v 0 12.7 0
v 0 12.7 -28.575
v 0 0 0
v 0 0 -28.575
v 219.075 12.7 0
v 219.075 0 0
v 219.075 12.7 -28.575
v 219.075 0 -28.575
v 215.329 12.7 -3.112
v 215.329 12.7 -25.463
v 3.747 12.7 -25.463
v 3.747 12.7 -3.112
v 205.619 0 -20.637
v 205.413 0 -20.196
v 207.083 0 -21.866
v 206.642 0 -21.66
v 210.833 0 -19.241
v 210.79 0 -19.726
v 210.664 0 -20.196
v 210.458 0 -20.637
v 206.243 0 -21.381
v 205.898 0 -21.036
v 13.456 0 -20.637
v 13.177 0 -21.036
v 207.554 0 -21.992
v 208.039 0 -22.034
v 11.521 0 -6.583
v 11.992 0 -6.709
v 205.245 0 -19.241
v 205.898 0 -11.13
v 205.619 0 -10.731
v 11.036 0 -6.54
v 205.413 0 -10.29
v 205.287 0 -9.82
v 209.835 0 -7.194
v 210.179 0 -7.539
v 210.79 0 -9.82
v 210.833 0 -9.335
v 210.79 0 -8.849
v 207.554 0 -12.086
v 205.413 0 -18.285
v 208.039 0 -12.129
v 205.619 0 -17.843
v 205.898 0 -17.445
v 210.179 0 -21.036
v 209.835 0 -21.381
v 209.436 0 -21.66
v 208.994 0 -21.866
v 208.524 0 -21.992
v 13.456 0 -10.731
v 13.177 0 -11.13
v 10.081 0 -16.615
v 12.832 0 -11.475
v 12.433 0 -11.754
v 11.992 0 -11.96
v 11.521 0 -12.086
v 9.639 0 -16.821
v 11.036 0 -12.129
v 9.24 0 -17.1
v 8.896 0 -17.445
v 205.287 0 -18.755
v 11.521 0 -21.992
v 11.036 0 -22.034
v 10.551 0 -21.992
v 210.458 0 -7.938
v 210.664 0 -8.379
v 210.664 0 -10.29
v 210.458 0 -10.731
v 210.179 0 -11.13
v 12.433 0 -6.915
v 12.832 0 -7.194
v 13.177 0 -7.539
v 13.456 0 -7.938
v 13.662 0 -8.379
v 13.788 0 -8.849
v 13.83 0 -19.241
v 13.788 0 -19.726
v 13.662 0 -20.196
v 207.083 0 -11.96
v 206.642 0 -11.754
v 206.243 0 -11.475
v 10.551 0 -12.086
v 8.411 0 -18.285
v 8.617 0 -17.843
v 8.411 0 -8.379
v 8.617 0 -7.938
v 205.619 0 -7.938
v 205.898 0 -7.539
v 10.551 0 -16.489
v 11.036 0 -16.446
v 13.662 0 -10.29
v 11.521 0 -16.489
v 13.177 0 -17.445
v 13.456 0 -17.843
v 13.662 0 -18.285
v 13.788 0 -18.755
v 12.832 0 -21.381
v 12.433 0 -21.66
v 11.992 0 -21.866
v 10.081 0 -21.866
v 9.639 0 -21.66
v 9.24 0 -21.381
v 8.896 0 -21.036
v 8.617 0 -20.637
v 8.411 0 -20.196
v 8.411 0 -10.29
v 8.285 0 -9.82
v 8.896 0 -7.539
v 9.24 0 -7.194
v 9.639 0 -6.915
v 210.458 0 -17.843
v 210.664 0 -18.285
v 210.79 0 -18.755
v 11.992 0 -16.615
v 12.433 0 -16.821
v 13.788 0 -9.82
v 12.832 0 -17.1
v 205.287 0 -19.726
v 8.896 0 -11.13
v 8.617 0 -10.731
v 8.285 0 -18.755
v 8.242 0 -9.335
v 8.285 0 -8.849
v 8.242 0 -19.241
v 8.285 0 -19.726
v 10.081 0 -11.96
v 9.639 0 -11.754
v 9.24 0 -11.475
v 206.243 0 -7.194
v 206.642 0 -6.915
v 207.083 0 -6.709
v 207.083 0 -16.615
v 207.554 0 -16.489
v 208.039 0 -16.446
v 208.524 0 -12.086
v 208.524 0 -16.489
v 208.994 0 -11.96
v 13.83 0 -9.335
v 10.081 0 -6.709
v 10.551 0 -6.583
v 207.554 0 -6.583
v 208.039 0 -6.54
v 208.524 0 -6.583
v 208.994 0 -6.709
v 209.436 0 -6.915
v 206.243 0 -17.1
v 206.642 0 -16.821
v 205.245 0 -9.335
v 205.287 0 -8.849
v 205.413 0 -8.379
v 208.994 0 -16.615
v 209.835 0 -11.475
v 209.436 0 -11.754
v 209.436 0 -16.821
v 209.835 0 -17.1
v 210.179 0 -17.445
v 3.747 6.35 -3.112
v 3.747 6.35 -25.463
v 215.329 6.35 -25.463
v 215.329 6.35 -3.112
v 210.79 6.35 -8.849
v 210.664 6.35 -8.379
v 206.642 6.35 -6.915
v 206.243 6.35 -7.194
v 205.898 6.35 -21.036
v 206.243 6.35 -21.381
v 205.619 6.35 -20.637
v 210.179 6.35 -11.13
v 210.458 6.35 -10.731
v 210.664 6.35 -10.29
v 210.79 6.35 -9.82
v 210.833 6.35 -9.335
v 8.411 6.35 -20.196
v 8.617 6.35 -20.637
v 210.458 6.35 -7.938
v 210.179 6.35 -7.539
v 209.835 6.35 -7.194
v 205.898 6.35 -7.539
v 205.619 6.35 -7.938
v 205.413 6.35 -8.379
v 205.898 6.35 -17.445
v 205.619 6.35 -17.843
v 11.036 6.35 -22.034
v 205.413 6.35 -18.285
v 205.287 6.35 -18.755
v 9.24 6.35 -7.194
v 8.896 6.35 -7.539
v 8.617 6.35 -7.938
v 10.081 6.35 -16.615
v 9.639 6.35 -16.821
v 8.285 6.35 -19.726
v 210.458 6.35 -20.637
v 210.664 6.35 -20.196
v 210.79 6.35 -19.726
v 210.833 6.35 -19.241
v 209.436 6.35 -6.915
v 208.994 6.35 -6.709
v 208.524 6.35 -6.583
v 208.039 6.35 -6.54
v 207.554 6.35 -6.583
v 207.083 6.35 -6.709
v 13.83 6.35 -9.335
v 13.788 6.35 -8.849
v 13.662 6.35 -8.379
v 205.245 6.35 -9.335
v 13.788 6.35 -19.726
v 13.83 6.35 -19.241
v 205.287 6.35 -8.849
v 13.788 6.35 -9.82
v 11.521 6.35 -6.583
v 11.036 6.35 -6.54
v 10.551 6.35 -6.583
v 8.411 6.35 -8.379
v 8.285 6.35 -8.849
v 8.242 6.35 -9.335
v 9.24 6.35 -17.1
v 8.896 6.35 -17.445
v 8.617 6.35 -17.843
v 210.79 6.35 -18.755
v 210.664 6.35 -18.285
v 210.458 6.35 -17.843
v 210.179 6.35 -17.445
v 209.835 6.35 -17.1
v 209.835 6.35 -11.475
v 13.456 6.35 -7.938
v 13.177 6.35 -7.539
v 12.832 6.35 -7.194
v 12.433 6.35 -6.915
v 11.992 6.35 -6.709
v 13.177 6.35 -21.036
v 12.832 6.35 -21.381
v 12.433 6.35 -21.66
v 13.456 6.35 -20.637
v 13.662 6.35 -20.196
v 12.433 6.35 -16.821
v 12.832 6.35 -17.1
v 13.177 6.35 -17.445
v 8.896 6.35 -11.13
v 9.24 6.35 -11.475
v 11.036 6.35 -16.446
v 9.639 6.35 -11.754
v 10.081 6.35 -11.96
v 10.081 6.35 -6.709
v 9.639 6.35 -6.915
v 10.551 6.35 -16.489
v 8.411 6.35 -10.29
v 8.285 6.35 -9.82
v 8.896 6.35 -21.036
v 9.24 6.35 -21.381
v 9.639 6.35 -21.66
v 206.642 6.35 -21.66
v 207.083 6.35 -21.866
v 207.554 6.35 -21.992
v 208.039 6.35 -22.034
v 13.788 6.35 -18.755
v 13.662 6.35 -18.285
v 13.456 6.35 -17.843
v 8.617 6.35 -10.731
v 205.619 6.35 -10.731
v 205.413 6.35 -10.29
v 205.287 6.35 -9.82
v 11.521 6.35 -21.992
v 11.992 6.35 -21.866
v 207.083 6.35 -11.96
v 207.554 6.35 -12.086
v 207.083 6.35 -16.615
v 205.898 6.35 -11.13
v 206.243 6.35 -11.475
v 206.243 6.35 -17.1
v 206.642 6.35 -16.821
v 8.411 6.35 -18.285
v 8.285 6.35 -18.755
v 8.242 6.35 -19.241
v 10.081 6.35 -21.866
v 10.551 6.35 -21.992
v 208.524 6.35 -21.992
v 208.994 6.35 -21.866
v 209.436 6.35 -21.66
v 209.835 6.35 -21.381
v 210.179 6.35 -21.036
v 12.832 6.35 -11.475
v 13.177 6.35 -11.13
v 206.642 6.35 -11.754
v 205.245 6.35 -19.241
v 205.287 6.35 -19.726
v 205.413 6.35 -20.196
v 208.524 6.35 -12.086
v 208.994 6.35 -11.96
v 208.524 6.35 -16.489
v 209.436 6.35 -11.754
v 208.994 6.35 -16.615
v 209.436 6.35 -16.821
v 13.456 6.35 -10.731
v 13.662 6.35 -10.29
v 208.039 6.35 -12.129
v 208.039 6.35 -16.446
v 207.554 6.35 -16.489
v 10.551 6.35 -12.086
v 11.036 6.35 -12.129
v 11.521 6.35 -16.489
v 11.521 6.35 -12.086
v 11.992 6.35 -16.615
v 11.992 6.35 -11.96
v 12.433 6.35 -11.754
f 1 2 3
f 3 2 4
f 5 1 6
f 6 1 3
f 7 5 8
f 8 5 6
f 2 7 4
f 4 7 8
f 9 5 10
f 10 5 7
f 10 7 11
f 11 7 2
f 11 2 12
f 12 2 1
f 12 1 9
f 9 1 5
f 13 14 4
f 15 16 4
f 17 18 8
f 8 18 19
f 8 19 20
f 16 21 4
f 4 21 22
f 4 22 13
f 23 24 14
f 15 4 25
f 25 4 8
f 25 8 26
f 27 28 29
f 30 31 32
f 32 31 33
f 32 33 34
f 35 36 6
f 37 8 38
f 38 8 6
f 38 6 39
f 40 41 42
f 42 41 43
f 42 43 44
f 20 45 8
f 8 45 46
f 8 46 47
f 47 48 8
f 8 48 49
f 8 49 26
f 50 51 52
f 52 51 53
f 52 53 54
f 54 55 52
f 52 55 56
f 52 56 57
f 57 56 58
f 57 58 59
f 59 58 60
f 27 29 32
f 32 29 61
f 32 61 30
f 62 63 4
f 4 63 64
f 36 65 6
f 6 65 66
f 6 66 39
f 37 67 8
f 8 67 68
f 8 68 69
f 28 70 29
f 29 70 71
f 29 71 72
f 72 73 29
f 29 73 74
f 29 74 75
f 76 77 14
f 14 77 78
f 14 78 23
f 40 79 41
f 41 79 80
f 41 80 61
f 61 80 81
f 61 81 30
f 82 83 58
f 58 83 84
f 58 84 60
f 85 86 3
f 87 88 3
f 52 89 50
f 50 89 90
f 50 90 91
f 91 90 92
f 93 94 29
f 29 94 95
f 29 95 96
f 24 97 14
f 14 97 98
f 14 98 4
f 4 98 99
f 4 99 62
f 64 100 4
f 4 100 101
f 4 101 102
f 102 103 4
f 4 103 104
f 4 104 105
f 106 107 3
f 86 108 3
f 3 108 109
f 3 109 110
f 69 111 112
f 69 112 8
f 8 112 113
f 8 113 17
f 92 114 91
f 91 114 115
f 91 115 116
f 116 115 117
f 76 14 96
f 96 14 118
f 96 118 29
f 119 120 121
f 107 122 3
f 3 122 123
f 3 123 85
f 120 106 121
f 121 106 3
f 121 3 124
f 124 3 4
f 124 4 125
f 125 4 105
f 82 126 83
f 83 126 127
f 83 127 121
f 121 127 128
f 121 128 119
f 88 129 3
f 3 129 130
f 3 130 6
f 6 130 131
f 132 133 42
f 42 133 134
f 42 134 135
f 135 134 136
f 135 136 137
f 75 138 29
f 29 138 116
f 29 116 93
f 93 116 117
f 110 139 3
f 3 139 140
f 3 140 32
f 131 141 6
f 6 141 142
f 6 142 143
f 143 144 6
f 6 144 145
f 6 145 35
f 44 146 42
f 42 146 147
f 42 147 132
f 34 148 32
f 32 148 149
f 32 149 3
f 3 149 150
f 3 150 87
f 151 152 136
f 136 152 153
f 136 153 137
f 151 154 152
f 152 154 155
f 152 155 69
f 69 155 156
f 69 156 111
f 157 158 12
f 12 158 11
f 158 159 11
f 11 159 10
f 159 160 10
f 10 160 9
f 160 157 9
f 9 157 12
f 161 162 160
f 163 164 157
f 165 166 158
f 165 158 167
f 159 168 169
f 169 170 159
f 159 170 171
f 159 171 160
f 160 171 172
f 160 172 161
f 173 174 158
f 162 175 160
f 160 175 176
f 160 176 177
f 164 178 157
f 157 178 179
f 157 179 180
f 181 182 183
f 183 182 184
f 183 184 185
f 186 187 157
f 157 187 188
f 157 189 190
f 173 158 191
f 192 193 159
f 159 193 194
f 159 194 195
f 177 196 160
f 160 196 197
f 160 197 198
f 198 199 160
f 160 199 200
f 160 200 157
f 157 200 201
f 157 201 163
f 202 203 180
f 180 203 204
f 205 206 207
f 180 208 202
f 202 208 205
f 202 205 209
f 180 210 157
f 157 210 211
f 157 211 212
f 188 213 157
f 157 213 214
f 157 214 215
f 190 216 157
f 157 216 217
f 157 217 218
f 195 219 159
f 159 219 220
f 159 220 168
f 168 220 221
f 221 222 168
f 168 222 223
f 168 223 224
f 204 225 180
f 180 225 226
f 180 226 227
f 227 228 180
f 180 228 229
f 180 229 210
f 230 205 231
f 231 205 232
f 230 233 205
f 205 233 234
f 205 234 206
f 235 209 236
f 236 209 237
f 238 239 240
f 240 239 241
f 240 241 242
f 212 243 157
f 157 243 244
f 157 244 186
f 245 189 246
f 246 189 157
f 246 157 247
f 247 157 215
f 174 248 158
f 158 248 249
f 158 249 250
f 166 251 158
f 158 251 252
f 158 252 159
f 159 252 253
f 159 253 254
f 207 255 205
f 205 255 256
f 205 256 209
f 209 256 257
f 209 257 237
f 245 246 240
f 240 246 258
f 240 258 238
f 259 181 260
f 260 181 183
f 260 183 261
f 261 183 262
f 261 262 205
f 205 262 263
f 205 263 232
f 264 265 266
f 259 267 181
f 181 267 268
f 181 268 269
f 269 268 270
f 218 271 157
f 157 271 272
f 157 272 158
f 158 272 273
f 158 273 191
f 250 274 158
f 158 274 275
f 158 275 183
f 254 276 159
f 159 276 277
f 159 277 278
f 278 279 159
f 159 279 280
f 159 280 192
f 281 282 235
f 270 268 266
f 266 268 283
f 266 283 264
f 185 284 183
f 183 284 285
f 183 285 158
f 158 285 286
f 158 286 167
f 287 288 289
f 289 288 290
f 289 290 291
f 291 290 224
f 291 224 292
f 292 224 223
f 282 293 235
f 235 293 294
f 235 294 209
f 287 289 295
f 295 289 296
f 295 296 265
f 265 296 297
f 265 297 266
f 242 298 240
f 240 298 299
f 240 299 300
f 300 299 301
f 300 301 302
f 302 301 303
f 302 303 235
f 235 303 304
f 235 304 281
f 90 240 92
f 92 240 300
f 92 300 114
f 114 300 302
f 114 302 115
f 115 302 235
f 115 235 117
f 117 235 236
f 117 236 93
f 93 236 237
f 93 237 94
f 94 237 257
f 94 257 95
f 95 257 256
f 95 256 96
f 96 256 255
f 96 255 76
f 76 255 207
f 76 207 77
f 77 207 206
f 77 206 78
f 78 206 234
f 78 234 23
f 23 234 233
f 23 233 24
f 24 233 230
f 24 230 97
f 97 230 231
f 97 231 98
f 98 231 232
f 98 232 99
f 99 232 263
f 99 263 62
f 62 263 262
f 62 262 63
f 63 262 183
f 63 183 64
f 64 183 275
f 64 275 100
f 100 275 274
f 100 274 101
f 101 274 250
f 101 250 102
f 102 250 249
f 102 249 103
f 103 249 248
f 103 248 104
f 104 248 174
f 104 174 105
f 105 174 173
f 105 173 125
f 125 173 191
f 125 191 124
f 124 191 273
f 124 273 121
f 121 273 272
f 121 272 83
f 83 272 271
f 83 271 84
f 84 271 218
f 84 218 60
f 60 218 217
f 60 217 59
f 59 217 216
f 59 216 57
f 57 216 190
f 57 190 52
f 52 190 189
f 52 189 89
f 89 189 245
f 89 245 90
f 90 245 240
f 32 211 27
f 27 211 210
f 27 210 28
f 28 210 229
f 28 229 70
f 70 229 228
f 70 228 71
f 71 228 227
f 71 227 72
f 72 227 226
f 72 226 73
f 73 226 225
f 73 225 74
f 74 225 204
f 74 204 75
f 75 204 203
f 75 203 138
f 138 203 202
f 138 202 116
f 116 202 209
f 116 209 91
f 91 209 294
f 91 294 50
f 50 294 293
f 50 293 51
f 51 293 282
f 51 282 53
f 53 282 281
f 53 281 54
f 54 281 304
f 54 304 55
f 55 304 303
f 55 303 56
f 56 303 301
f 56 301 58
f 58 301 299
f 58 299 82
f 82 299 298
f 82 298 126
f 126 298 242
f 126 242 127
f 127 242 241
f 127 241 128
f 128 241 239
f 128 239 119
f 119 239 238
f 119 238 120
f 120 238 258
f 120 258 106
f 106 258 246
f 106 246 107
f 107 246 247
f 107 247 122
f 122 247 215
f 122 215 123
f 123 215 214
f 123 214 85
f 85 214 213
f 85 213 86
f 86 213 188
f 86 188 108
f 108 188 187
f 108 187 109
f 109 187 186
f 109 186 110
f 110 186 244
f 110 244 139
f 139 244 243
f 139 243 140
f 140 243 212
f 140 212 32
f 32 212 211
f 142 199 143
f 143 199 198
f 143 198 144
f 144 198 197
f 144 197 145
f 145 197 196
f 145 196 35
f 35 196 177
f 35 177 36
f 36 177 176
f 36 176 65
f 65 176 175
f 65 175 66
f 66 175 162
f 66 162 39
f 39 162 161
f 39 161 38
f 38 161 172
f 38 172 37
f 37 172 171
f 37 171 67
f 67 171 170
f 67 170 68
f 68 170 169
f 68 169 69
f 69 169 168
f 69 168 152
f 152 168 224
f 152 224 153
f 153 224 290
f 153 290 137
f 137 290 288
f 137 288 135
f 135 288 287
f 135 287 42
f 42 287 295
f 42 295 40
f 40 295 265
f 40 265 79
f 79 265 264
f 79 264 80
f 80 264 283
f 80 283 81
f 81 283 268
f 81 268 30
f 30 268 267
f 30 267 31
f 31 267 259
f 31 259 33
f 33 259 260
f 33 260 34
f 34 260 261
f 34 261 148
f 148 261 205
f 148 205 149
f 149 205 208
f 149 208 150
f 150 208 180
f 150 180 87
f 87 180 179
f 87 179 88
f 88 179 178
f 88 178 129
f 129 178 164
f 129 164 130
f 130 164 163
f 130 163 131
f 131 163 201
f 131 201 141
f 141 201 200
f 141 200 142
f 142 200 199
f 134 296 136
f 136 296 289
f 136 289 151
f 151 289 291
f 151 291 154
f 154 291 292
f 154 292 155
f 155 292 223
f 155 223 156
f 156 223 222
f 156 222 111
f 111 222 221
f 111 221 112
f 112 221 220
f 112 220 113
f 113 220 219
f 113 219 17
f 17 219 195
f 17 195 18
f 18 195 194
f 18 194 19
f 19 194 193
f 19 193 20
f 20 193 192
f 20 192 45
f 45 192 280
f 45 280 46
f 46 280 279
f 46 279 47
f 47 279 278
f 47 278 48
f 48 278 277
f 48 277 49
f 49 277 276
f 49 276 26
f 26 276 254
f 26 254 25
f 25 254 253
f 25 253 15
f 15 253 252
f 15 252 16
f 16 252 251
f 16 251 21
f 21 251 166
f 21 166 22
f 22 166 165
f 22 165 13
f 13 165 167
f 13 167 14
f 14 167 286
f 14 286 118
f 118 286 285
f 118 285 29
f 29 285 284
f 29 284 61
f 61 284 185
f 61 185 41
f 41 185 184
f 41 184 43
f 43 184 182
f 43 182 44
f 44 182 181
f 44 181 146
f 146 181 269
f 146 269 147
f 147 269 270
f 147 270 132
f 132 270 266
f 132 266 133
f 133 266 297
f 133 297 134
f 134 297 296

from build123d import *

# Parameters (mm, degrees)
SKETCH1_W           = 219.075
SKETCH1_H           = 28.575
BOSS_EXTRUDE1_DEPTH = 12.7
SKETCH2_W           = 211.582
SKETCH2_H           = 22.352
CUT_EXTRUDE1_DEPTH  = 6.35
SKETCH4_R           = 2.794
CUT_EXTRUDE2_DEPTH  = 222.021964406


with BuildPart() as part:
    # Sketch1 → Boss-Extrude1 (new body)
    with BuildSketch(Plane(origin=(0, 0, 0), x_dir=(1, 0, 0), z_dir=(0, 1, 0))):
        with Locations((109.5375, 14.2875)):
            Rectangle(SKETCH1_W, SKETCH1_H)
    extrude(amount=BOSS_EXTRUDE1_DEPTH)

    # Sketch2 → Cut-Extrude1 (cut)
    with BuildSketch(Plane(origin=(0, 12.7, 0), x_dir=(1, 0, 0), z_dir=(0, 1, 0))):
        with Locations((109.5375, 14.2875)):
            Rectangle(SKETCH2_W, SKETCH2_H)
    extrude(amount=-CUT_EXTRUDE1_DEPTH, mode=Mode.SUBTRACT)

    # Sketch4 → Cut-Extrude2 (cut, through all)
    with BuildSketch(Plane(origin=(0, 6.35, 0), x_dir=(1, 0, 0), z_dir=(0, 1, 0))):
        with Locations(Location((11.0363, 19.2405, 0), (0, 0, 270))):
            Circle(SKETCH4_R)
        with Locations(Location((11.0363, 9.3345, 0), (0, 0, 90))):
            Circle(SKETCH4_R)
        with Locations(Location((208.0387, 9.3345, 0), (0, 0, 270))):
            Circle(SKETCH4_R)
        with Locations(Location((208.0387, 19.2405, 0), (0, 0, 90))):
            Circle(SKETCH4_R)
    extrude(amount=-CUT_EXTRUDE2_DEPTH, mode=Mode.SUBTRACT)


solid = part.part
